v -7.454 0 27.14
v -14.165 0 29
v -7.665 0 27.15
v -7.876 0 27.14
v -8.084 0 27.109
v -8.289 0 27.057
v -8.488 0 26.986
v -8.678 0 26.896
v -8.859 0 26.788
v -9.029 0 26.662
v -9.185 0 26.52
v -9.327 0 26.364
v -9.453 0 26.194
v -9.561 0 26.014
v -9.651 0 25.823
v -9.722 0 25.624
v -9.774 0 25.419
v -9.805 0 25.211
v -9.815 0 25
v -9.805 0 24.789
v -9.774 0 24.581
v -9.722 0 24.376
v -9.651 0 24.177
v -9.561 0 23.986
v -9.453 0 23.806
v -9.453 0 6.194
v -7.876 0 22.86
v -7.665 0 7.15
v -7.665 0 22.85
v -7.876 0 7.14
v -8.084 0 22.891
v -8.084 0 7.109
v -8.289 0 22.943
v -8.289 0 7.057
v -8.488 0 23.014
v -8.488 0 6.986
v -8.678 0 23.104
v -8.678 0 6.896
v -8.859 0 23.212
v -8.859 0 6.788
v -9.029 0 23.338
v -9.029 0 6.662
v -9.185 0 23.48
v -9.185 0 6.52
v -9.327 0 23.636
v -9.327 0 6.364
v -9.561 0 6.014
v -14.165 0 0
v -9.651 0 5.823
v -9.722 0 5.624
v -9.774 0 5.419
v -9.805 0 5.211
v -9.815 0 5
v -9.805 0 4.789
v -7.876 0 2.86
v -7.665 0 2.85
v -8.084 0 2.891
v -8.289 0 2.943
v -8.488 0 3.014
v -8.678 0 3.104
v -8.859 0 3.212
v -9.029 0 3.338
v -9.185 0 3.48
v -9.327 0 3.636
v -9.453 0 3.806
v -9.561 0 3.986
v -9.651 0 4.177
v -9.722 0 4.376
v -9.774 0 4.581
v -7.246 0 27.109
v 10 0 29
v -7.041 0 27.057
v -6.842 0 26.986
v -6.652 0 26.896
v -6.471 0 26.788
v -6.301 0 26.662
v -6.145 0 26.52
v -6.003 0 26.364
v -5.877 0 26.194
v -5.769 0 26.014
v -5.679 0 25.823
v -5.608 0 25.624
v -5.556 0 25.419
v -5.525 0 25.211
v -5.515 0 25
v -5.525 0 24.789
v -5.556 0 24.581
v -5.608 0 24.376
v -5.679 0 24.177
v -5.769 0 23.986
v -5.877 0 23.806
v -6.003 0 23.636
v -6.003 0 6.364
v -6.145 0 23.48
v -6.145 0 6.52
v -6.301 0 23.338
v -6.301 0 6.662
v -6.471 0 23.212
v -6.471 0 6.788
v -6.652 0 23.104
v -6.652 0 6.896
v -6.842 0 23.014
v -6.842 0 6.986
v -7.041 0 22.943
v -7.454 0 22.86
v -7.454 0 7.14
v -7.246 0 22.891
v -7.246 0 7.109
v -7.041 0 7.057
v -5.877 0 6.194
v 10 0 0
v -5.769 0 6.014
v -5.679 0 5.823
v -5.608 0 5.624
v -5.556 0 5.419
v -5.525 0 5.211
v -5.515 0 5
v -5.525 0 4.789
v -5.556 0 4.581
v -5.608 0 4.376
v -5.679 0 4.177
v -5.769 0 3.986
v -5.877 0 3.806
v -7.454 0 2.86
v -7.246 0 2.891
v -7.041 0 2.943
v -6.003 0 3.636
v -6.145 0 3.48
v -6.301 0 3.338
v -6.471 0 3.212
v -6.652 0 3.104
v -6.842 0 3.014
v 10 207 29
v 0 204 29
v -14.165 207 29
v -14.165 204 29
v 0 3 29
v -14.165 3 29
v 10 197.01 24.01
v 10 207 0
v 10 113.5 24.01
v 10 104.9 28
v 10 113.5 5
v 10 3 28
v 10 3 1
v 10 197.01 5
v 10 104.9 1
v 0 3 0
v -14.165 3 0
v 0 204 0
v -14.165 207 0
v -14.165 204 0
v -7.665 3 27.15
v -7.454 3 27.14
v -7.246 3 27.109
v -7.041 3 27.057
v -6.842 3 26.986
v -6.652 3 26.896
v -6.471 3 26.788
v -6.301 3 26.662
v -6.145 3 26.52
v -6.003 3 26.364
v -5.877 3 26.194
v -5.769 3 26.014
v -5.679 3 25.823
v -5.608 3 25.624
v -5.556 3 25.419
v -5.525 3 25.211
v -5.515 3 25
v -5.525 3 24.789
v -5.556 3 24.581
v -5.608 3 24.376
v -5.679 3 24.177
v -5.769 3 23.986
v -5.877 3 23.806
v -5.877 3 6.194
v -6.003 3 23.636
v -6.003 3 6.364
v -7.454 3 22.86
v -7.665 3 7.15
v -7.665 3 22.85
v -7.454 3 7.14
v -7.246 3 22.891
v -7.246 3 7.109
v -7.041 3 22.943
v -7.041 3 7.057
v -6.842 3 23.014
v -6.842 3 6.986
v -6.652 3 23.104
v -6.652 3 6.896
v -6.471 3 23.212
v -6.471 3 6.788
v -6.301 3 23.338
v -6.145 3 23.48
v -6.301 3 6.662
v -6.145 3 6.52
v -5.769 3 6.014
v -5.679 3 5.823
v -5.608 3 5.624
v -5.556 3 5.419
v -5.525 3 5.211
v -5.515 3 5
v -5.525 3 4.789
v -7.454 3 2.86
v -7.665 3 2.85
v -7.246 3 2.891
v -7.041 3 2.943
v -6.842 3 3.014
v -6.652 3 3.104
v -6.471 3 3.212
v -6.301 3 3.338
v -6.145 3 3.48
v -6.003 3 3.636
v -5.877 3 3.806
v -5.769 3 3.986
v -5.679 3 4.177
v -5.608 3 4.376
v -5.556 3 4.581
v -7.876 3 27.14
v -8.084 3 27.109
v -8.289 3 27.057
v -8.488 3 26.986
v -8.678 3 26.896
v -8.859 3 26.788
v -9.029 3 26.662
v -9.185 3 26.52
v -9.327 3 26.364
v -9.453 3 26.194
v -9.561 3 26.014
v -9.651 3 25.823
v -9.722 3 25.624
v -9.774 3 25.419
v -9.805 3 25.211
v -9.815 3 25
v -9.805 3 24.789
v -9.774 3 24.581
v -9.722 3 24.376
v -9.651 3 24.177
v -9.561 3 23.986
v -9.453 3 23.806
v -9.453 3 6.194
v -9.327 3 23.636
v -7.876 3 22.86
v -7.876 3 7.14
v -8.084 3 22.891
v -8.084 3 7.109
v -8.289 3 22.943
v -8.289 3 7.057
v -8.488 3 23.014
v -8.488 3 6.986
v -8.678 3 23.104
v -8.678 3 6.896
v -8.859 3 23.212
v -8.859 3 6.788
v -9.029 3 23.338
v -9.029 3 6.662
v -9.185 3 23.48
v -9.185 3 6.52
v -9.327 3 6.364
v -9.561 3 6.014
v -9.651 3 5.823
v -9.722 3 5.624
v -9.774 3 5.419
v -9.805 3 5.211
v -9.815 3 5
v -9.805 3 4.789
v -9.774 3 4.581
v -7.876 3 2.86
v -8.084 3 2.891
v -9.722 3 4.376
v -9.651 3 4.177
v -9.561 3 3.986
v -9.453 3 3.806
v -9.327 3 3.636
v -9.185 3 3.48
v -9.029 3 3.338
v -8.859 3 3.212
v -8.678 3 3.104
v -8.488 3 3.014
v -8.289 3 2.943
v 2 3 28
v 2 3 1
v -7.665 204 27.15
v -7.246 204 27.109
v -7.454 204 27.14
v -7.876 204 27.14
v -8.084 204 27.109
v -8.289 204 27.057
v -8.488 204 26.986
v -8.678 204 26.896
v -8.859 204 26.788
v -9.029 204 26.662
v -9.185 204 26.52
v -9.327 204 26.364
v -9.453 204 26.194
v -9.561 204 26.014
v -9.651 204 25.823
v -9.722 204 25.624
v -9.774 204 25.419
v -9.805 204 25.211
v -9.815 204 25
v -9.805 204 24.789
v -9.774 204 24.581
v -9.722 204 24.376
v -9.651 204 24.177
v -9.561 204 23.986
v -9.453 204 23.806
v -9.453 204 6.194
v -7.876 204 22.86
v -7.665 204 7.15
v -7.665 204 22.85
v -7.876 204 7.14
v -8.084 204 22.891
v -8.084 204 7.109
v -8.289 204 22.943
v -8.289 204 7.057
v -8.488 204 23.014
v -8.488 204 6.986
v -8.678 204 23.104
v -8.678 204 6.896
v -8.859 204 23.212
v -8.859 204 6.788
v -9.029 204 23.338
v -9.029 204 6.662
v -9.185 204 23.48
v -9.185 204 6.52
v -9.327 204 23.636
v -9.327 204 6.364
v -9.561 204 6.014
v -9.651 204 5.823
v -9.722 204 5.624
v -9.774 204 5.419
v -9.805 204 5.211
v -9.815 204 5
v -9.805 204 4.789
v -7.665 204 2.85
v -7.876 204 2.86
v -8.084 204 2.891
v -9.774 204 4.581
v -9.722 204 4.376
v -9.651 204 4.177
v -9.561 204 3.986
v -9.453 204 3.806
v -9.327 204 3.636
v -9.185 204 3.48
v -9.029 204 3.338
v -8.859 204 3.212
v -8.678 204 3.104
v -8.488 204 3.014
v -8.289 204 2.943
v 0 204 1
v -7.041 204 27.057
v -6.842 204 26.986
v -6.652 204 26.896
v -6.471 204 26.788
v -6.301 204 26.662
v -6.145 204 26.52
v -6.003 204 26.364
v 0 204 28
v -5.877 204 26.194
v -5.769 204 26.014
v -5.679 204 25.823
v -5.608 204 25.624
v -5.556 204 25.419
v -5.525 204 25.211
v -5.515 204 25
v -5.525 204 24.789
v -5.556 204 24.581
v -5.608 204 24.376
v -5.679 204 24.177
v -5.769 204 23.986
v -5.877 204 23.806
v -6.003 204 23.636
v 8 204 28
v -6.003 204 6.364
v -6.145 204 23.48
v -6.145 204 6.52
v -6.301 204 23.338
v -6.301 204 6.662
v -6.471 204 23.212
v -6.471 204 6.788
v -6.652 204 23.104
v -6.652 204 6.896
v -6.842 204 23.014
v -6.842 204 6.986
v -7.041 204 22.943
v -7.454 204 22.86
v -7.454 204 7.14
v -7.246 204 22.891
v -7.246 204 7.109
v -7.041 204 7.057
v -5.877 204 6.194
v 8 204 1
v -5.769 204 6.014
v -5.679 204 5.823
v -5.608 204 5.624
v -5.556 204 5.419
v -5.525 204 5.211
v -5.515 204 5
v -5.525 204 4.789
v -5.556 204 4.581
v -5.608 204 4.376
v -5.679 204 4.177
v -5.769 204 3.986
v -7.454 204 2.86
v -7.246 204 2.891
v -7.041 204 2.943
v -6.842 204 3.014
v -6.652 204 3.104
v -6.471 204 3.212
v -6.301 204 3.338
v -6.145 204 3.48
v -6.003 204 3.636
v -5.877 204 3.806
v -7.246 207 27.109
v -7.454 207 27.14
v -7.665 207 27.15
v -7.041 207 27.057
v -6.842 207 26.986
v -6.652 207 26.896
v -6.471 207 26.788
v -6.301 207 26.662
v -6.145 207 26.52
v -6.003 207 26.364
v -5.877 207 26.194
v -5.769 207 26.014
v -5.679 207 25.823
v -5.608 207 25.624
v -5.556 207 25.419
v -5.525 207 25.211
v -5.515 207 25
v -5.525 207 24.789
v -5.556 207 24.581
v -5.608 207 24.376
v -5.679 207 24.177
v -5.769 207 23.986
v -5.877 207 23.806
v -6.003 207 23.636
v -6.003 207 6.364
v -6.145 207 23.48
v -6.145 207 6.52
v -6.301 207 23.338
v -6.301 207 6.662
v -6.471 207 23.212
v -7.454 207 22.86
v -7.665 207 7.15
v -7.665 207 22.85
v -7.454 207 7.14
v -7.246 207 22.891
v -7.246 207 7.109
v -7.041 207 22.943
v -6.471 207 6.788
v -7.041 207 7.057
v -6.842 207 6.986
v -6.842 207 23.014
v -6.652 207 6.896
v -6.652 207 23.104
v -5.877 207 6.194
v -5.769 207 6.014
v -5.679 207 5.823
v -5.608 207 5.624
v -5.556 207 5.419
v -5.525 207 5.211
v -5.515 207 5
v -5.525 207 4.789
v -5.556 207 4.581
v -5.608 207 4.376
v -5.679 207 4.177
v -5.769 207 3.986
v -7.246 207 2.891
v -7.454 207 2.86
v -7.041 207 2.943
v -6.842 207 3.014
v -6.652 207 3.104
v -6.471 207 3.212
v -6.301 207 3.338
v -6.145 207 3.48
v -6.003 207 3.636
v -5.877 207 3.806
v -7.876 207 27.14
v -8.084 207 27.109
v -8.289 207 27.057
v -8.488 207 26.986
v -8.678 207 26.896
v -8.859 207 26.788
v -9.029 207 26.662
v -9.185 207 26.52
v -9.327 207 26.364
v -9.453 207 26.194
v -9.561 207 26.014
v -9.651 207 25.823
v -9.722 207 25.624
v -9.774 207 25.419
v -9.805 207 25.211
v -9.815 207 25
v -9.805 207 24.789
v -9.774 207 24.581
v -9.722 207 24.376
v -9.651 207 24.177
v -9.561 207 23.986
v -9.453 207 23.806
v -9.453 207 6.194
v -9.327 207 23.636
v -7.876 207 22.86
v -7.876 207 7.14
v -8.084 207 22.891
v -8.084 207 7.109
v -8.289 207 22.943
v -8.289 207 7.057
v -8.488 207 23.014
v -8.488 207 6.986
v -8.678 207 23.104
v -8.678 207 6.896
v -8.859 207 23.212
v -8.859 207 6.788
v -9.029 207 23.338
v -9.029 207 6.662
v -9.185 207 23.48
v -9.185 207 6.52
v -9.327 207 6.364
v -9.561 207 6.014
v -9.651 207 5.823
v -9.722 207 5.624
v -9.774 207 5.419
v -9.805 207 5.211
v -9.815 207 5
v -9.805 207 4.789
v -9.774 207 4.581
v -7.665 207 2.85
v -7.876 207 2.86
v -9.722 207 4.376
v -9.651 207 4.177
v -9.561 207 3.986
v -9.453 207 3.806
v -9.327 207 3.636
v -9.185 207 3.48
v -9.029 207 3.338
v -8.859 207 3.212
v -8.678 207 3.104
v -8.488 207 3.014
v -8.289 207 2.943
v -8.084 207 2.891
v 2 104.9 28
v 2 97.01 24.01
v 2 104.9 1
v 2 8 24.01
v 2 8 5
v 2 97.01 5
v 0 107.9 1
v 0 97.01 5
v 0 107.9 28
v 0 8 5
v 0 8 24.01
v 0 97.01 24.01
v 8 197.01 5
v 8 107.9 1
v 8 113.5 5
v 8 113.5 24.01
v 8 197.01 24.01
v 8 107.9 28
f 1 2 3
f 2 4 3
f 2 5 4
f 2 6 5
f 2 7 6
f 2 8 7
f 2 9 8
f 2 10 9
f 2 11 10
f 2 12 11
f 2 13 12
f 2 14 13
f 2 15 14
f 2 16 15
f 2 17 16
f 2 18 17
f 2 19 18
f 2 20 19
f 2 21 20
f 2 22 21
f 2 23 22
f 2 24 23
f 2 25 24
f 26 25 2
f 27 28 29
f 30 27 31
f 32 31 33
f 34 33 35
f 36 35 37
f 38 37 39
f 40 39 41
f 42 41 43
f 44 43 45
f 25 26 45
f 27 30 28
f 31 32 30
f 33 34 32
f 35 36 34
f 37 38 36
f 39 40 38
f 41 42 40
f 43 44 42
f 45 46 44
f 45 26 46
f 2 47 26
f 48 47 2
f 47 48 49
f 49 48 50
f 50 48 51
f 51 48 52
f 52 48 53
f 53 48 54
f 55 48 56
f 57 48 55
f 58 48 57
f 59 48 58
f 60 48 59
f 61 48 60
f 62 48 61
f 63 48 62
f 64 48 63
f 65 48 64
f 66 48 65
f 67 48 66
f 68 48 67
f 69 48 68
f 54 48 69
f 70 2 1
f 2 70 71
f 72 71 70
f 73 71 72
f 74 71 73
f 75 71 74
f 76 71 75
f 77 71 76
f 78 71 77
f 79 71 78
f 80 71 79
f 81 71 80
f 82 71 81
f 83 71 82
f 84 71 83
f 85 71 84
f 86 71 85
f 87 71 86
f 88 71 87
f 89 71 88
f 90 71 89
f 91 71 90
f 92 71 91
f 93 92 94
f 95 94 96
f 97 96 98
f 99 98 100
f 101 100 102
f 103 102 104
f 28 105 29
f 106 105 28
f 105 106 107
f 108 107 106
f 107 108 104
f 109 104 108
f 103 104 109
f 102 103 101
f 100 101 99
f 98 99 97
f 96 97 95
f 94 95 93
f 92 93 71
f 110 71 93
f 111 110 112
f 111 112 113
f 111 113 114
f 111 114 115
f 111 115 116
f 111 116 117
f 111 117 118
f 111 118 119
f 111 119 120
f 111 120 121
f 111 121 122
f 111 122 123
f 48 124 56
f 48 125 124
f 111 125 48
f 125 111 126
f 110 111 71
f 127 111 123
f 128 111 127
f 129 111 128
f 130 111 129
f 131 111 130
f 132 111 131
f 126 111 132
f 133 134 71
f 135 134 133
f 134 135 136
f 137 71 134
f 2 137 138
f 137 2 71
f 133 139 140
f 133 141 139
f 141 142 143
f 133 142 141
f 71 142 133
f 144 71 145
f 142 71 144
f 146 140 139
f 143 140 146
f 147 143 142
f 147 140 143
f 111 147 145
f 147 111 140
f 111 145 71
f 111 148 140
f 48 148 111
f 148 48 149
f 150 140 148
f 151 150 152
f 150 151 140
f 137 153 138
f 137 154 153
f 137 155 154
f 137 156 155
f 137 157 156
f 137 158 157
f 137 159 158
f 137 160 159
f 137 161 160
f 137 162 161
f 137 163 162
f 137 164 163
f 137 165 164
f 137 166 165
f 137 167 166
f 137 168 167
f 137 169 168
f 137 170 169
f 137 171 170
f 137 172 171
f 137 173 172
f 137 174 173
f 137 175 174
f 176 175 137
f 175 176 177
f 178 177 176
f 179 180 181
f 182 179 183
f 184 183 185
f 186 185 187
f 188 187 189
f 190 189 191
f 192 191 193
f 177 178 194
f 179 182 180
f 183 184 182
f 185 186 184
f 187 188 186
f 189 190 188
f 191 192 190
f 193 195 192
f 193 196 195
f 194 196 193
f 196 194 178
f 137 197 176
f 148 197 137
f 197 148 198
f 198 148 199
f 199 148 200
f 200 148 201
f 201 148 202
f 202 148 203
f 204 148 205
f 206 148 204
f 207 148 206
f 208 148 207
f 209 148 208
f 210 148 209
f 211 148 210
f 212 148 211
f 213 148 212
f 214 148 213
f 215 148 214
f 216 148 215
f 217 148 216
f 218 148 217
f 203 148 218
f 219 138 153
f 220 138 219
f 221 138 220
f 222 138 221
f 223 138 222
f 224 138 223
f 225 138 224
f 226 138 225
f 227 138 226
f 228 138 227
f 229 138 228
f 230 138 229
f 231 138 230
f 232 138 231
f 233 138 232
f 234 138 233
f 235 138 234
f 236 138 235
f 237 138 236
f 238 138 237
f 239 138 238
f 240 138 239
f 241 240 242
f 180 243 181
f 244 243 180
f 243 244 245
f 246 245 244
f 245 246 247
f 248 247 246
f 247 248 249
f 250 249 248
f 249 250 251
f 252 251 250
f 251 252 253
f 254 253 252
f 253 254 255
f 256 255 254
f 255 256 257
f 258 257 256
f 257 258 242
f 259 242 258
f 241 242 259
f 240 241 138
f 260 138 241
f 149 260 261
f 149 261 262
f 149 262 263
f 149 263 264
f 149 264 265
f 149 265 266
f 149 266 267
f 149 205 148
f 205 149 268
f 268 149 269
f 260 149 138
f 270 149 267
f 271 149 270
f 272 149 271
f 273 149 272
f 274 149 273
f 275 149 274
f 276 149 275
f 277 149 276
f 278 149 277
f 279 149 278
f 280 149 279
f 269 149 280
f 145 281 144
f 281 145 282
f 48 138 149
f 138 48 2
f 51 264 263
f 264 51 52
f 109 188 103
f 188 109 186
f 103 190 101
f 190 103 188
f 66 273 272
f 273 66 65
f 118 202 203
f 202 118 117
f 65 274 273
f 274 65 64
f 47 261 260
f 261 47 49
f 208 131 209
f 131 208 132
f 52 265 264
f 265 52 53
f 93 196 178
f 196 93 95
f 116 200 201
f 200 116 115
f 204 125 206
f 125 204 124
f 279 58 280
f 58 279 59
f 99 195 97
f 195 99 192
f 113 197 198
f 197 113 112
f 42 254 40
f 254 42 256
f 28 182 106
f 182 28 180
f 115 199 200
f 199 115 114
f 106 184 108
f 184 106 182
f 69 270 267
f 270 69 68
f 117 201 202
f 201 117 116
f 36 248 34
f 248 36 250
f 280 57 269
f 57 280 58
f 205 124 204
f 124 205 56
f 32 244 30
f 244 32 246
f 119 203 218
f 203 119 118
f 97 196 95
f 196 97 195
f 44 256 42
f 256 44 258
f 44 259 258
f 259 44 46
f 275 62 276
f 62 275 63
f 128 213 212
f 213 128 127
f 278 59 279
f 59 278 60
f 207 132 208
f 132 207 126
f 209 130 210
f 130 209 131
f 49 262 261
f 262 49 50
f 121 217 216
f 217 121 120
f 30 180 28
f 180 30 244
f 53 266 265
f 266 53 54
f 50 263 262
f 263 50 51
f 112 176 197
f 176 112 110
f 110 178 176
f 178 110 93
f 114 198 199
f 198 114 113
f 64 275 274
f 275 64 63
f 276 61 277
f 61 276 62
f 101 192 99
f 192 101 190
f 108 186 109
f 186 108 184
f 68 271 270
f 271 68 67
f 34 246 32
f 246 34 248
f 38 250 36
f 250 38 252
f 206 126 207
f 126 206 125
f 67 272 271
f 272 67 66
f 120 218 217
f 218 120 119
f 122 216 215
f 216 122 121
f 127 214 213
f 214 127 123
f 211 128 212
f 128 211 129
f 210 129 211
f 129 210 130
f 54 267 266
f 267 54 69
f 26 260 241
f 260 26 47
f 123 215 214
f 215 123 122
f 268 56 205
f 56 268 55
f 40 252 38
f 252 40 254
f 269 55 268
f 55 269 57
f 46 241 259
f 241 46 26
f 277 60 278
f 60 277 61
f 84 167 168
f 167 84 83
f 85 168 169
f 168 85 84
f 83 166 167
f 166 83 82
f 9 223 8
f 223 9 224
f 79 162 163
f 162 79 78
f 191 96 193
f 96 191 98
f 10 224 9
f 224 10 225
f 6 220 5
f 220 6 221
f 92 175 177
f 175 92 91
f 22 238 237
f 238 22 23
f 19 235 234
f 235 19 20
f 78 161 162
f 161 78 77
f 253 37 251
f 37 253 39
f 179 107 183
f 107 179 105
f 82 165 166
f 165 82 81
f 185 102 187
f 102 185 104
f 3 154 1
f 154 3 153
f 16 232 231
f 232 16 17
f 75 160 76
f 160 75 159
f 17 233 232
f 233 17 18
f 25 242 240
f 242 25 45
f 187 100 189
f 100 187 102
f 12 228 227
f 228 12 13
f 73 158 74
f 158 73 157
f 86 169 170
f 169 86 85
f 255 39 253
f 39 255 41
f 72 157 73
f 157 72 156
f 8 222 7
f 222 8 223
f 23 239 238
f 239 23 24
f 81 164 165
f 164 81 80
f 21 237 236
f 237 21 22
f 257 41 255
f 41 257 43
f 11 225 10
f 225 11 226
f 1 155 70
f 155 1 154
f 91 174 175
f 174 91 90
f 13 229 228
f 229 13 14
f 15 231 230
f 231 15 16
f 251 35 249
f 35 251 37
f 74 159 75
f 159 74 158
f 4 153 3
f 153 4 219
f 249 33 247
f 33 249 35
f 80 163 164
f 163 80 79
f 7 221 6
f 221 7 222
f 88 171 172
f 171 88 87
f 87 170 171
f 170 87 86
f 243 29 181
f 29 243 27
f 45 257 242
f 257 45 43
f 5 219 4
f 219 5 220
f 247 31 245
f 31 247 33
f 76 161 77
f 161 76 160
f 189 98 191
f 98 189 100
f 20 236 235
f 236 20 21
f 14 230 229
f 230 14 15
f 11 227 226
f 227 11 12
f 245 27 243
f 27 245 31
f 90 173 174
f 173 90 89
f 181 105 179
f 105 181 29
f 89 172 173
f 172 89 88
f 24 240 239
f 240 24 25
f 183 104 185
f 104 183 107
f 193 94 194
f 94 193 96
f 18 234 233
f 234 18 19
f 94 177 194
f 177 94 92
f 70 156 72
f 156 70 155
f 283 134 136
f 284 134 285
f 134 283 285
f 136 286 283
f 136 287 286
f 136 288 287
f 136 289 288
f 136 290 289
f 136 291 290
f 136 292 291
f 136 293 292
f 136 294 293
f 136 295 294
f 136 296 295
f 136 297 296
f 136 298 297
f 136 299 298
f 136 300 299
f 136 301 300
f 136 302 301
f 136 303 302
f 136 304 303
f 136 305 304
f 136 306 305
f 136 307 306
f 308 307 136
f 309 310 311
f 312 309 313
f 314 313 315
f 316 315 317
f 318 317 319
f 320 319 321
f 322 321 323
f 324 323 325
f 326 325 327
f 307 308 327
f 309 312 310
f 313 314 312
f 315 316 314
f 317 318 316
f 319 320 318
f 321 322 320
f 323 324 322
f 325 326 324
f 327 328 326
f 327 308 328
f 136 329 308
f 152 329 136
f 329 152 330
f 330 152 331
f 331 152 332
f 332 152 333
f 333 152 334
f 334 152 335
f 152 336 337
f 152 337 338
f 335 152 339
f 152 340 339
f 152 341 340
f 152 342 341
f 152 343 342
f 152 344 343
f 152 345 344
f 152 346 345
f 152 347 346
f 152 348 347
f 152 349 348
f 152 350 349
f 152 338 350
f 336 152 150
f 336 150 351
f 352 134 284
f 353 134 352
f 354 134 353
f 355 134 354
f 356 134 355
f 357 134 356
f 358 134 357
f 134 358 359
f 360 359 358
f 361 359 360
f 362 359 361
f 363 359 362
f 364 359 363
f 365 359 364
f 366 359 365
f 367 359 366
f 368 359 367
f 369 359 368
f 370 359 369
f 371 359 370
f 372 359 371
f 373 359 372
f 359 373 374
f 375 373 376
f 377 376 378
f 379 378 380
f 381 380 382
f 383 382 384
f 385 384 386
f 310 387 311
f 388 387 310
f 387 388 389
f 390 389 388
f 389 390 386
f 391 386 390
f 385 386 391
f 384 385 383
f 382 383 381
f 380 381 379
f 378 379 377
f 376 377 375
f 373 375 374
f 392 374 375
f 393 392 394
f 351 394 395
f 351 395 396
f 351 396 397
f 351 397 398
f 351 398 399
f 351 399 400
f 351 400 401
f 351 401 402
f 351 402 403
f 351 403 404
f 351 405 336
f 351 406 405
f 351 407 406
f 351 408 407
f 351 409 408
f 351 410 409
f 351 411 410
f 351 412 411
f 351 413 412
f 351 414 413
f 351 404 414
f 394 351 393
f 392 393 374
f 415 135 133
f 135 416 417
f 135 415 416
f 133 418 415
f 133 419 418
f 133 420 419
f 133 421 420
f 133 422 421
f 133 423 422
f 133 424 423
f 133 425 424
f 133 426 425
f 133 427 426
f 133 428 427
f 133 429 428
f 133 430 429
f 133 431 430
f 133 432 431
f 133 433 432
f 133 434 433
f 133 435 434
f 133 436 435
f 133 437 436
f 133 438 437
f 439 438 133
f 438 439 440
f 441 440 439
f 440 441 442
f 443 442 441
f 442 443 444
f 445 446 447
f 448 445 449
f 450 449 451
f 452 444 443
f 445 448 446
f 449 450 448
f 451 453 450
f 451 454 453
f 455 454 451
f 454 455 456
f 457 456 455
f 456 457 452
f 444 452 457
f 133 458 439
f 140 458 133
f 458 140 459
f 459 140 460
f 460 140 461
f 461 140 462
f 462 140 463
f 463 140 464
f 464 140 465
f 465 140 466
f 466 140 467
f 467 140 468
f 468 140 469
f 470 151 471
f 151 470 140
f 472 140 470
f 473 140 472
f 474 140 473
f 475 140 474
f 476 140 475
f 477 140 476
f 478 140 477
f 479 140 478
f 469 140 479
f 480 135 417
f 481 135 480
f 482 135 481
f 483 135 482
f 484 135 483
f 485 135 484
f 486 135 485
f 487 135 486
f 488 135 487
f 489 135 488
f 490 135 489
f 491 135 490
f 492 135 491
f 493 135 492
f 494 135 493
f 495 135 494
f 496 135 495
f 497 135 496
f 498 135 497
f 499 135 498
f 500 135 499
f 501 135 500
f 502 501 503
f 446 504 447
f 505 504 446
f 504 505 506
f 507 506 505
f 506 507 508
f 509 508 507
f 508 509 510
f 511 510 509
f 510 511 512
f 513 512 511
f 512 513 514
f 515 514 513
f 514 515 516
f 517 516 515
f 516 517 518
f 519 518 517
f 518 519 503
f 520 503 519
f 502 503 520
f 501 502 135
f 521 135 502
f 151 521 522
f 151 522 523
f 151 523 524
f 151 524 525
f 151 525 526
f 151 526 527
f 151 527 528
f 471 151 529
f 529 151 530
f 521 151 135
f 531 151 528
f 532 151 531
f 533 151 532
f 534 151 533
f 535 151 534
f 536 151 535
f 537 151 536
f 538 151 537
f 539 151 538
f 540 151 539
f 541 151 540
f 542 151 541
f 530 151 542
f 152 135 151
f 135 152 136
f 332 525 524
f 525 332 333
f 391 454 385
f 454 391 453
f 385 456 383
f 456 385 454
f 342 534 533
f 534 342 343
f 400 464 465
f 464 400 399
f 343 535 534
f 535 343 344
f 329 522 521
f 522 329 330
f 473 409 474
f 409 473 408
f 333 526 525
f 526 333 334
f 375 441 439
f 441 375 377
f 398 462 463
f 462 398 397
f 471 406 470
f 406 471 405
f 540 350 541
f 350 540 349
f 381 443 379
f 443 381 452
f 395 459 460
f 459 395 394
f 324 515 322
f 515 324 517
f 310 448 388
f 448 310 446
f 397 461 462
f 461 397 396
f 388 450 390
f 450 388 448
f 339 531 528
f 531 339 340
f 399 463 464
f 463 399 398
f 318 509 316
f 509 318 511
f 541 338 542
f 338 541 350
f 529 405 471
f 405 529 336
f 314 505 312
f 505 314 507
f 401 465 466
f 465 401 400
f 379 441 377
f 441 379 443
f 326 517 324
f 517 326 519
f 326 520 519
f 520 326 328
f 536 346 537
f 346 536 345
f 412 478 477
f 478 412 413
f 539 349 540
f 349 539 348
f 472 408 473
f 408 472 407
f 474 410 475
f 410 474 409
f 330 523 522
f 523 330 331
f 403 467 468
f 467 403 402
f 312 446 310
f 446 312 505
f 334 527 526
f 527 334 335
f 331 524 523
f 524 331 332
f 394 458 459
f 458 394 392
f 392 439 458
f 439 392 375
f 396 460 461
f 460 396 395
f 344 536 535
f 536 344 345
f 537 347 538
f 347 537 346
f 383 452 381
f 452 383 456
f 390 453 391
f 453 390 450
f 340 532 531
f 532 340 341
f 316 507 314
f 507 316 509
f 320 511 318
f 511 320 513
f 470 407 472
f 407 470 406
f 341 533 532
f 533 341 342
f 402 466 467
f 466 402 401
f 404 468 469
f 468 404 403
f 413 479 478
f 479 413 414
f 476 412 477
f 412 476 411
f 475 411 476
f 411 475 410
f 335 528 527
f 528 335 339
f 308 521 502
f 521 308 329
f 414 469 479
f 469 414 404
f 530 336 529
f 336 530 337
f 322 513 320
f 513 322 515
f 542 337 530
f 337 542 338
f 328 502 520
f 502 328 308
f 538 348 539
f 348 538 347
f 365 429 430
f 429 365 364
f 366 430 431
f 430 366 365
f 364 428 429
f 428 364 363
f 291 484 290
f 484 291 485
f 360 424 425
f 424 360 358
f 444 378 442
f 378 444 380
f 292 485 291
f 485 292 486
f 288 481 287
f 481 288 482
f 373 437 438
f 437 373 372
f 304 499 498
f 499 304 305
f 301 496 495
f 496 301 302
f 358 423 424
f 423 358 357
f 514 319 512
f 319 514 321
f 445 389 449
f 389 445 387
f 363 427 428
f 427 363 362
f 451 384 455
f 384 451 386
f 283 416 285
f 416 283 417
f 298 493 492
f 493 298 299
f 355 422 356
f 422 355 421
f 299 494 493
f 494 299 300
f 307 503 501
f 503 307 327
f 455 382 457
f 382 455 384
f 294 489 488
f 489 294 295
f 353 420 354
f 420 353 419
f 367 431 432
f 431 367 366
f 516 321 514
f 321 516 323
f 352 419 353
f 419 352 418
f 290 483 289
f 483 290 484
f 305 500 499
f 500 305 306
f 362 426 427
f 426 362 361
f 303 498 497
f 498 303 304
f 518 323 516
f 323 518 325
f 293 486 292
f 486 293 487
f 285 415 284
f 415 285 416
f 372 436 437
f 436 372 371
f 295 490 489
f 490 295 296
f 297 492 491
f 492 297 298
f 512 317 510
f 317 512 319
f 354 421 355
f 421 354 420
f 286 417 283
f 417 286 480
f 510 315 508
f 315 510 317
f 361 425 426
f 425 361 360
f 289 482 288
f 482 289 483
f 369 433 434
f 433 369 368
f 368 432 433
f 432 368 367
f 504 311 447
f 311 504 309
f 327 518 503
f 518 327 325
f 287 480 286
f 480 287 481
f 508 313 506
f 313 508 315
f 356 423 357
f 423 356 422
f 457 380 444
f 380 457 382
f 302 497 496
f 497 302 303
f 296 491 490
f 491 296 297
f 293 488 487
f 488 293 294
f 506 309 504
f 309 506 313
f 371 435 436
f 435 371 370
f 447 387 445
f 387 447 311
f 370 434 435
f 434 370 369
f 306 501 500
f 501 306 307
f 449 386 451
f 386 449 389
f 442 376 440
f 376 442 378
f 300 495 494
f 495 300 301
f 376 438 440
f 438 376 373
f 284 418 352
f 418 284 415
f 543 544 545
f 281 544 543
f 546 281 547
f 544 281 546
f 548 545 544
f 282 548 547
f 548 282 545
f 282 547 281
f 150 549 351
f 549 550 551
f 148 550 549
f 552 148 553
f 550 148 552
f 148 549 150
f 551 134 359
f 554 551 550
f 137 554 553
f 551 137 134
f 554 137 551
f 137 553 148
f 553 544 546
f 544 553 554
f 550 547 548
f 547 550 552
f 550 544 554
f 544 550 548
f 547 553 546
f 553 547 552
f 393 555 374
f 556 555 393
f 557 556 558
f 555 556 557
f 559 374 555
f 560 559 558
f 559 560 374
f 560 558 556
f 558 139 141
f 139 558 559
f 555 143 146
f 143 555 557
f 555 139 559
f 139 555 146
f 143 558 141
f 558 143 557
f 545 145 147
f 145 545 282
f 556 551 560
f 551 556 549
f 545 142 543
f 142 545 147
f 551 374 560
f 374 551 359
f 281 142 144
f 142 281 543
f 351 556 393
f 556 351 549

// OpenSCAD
// file: ../helper/common.scad
/* Some commonly used variables plus functions
*/

$fn=64;
// TODO move these to math
eps=0.00001;

inf10 = 10;
inf50 = 50;
inf1000 = 1000;
inf = inf1000;


module apply_p() {
  union() {
    children(0);
    children(1);
  }
}

module apply_n() {
  difference() {
    children(1);
    children(0);
  }
}

module apply_pn() {
  difference() {
    union() {
      children(0);
      children(2);
    }
    children(1);
  }
}

module apply_np() {
  difference() {
    union() {
      children(1);
      children(2);
    }
    children(0);
  }
}
// file: ../helper/math.scad
// TODO remove/rename this file
/* Example usage:
for (i=mirror4XY(midpoint=[0,0,0], offsetX=90, offsetY=90)) {
    translate(v=i)
        something();
}
*/

module mirror4XY(p, dx, dy) {

    px = p[0];
    py = p[1];

    translate(v=[px, py, 0])
    children(0);

    translate(v=[px+dx, py, 0])
    children(0);

    translate(v=[px, py+dy, 0])
    children(0);

    translate(v=[px+dx, py+dy, 0])
    children(0);
}

// TODO: rename to simple align
module align(a,b) {

    rot_axis = cross(a,b);

    if (rot_axis == [0,0,0]) {
        error("Can't align - provided vectors are parallel");
    }

    angle = acos(a*b/(norm(a)*norm(b)));

    rotate(v=rot_axis, a=angle)
        children(0);
}
// file: screws.scad
/* Some common screw dimensions and helper functions/modules */

include <../helper/math.scad>
include <../helper/common.scad>

/********************************************************************************/
// M3 dimensions
m3HoleRadiusSlack = 0.4; // higher slack for not-so straight heat set inserts
m3Diameter = 3.0;
m3Radius = m3Diameter / 2.0;
m3RadiusSlacked = m3Radius + m3HoleRadiusSlack;

m3HexNutWidthAcrossFlats = 5.41;
m3HexNutWidthAcrossCorners = FtoG(m3HexNutWidthAcrossFlats);
m3HexNutThickness = 2.18;

m3HeatSetInsertSlotRadiusSlack = -0.1;
m3HeatSetInsertSlotHeightSlack = 0.5;

m3HeatSetInsertSlotRadius = 2.5;
m3HeatSetInsertSlotHeight = 6;

m3HeatSetInsertSlotRadiusSlacked = m3HeatSetInsertSlotRadius+m3HeatSetInsertSlotRadiusSlack;
m3HeatSetInsertSlotHeightSlacked = m3HeatSetInsertSlotHeight+m3HeatSetInsertSlotHeightSlack;

/********************************************************************************/
// M4 dimensions
m4HoleRadiusSlack = 0.15;
m4Diameter = 4.0;
m4Radius = m4Diameter / 2.0;
m4RadiusSlacked = m4Radius + m4HoleRadiusSlack;
m4HexNutWidthAcrossFlats = 6.89;
m4HexNutWidthAcrossCorners = FtoG(m4HexNutWidthAcrossFlats);
m4HexNutThickness = 3.07;

/********************************************************************************/

module heatSetInsertSlot_N(screwType) {
  if (screwType == "m3") {
    union() {
      // actual slot for insert
      cylinder(h = m3HeatSetInsertSlotHeightSlacked, r = m3HeatSetInsertSlotRadiusSlacked);

      // extra space above slot to help with insertion
      translate(v=[0, 0, m3HeatSetInsertSlotHeightSlacked])
      cylinder(h = inf50, r = 1.3*m3HeatSetInsertSlotRadiusSlacked);
    }
  } else {
    error("Unsupported screw type");
  }
}

function screwRadiusSlacked(screwType) =
  (screwType == "m3")
  ? m3RadiusSlacked
  : (screwType == "m4")
  ? m4RadiusSlacked
  : error("Unsupported screw type");

module hexNutPocket_N(screwType) {
  if (screwType == "m3") {
    hexNutPocketHelper_N(m3RadiusSlacked, m3HexNutWidthAcrossCorners / 2 + 0.1, m3HexNutThickness + 0.2);
  } else if (screwType == "m4") {
    hexNutPocketHelper_N(m4RadiusSlacked, m4HexNutWidthAcrossCorners / 2 + 0.1, m4HexNutThickness + 0.2);
  } else {
    error("Unsupported screw type");
  }
}

module hexNutPocketHelper_N(innerRadius, widthAcrossCorners, thickness) {
  union() {
    hull() {
      // hexagonal cylinder representing where the nut should fit
      cylinder(r = widthAcrossCorners, h = thickness, center = true, $fn = 6);

      // negative volume for sliding in the nut
      translate(v = [inf50, 0, 0])
      cylinder(r = widthAcrossCorners, h = thickness, center = true, $fn = 6);
    }

    // negative volume for screw lead
    translate(v = [0, 0, - 10])
    cylinder(r = innerRadius, h = inf50, $fn = 32);

    hull() {
      translate(v = [inf50, 0, 0])
      cylinder(r = innerRadius, h = inf50, $fn = 32);
      cylinder(r = innerRadius, h = inf50, $fn = 32);
    }
  }
}

// Convert a regular hexagon widthAcrossFlats to widthAcrossCorners
function FtoG(widthAcrossFlats) = widthAcrossFlats * (2 / sqrt(3));

// Convert a regular hexagon widthAcrossCorners to widthAcrossFlats
function GtoF(widthAcrossCorners) = widthAcrossCorners * (sqrt(3) / 2);
// file: ../common.scad
/* Some initial configurations and commonly used variables
   plus functions
*/

$fn=64;


eps=0.01;
// main file
/* Simple configurable rack mount component to hold a box-like shell */

include <../common.scad>
include <./screws.scad>

slack = 0.4;

boxWidth = 157.67;
boxHeight = 27.0;
boxLength = 101.5+1;

topThickness = 1.0;
bottomThickness = 1.0;

faceThickness = 3.0;
sideThickness = 2.0;
sideSupportWidth = 10;

railWidth = 16.0;

totalHeight = boxHeight+topThickness+bottomThickness;
totalLength = boxLength+2*sideThickness;


railMountWidthDiff = (200.0 - (boxWidth + 2*sideThickness)) / 2.0;

totalMountLength = 200.0 + 2*faceThickness + 1;
  
module sideHolder() {


  module frontLowerCaseSegment() {
    translate(v=[0,0,0])
      cube(size=[sideSupportWidth, faceThickness, bottomThickness]);
  }

  module frontUpperCaseSegment() {
    // no room for slack? :(
    translate(v=[0,0,boxHeight+bottomThickness])
      cube(size=[sideSupportWidth, faceThickness, topThickness]);
  }

  module backLowerCaseSegment() {
      translate(v=[0,boxLength+slack+sideThickness,0])
        frontLowerCaseSegment();
  }

  module backUpperCaseSegment() {
      translate(v=[0,boxLength+slack+sideThickness,0])
        frontUpperCaseSegment();
  }

  module backLowerRailSegment() {
    translate(v=[0,200.0+1,0])
      cube(size=[sideSupportWidth, faceThickness, bottomThickness]);
  }

  
  module backUpperRailSegment() {
    translate(v=[0,200.0+1,boxHeight+bottomThickness])
      cube(size=[sideSupportWidth, faceThickness, topThickness]);
  }

  module frontRailMountSegment() {
    // +2 is slack
    translate(v=[-railMountWidthDiff+5,0,0])
      // should technically use different totalHeight, as current totalHeight is for case holder
      cube(size=[railWidth,faceThickness,totalHeight]);
  }

  module backRailMountSegment() {
    translate(v=[0,200+1,0])
      // should technically use different totalHeight, as current totalHeight is for case holder
      frontRailMountSegment();
  }


  module frontFace() {
    difference() {
      hull() {
        frontLowerCaseSegment();
        frontUpperCaseSegment();
        frontRailMountSegment();
      }

      // screw holes
      translate(v=[-railMountWidthDiff + 11.5,0,5])
        rotate(a=[90,0,0])
        cylinder(r=m4RadiusSlacked, h=10, center=true);

      translate(v=[-railMountWidthDiff + 11.5,0,25])
        rotate(a=[90,0,0])
        cylinder(r=m4RadiusSlacked, h=10, center=true);
    }
    
  }

  module backFace() {
    translate(v=[0,200.0+faceThickness+1,0])
      frontFace();
      
  }

  frontFace();
  backFace();

  

  hull() {
    frontLowerCaseSegment();
    backLowerCaseSegment();
  }

  hull() {
    backLowerCaseSegment();
    backUpperCaseSegment();
  }

  hull() {
    frontUpperCaseSegment();
    backUpperCaseSegment();
  }


  hull() {
    backLowerRailSegment();
    backLowerCaseSegment();
  }

  hull() {
    backUpperRailSegment();
    backUpperCaseSegment();
  }

  // side support/hold for case
  difference() {
    cube(size=[sideThickness, totalLength, totalHeight]);

    translate(v=[-eps/2,8,5])
      cube(size=[sideThickness+eps,totalLength-17.5+eps, totalHeight-10+eps]);
  }


  // side support/hold for case
  difference() {
    translate(v=[sideSupportWidth-sideThickness,totalLength,0])
    cube(size=[sideThickness, totalMountLength-totalLength, totalHeight]);

    translate(v=[sideSupportWidth-sideThickness-eps/2,(200-totalLength)+20,5])
      cube(size=[sideThickness+eps,(200-totalLength)-10+eps, totalHeight-10+eps]);
  }
}


module sideHolderAligned() {
  //translate(v=[19,0,0])
    sideHolder();
}

module mSide() {
  mirror(v=[1,0,0]) {
    sideHolderAligned();
  }
}

sideHolderAligned();

//translate(v=[42 + boxWidth,0,0])
//mSide();
